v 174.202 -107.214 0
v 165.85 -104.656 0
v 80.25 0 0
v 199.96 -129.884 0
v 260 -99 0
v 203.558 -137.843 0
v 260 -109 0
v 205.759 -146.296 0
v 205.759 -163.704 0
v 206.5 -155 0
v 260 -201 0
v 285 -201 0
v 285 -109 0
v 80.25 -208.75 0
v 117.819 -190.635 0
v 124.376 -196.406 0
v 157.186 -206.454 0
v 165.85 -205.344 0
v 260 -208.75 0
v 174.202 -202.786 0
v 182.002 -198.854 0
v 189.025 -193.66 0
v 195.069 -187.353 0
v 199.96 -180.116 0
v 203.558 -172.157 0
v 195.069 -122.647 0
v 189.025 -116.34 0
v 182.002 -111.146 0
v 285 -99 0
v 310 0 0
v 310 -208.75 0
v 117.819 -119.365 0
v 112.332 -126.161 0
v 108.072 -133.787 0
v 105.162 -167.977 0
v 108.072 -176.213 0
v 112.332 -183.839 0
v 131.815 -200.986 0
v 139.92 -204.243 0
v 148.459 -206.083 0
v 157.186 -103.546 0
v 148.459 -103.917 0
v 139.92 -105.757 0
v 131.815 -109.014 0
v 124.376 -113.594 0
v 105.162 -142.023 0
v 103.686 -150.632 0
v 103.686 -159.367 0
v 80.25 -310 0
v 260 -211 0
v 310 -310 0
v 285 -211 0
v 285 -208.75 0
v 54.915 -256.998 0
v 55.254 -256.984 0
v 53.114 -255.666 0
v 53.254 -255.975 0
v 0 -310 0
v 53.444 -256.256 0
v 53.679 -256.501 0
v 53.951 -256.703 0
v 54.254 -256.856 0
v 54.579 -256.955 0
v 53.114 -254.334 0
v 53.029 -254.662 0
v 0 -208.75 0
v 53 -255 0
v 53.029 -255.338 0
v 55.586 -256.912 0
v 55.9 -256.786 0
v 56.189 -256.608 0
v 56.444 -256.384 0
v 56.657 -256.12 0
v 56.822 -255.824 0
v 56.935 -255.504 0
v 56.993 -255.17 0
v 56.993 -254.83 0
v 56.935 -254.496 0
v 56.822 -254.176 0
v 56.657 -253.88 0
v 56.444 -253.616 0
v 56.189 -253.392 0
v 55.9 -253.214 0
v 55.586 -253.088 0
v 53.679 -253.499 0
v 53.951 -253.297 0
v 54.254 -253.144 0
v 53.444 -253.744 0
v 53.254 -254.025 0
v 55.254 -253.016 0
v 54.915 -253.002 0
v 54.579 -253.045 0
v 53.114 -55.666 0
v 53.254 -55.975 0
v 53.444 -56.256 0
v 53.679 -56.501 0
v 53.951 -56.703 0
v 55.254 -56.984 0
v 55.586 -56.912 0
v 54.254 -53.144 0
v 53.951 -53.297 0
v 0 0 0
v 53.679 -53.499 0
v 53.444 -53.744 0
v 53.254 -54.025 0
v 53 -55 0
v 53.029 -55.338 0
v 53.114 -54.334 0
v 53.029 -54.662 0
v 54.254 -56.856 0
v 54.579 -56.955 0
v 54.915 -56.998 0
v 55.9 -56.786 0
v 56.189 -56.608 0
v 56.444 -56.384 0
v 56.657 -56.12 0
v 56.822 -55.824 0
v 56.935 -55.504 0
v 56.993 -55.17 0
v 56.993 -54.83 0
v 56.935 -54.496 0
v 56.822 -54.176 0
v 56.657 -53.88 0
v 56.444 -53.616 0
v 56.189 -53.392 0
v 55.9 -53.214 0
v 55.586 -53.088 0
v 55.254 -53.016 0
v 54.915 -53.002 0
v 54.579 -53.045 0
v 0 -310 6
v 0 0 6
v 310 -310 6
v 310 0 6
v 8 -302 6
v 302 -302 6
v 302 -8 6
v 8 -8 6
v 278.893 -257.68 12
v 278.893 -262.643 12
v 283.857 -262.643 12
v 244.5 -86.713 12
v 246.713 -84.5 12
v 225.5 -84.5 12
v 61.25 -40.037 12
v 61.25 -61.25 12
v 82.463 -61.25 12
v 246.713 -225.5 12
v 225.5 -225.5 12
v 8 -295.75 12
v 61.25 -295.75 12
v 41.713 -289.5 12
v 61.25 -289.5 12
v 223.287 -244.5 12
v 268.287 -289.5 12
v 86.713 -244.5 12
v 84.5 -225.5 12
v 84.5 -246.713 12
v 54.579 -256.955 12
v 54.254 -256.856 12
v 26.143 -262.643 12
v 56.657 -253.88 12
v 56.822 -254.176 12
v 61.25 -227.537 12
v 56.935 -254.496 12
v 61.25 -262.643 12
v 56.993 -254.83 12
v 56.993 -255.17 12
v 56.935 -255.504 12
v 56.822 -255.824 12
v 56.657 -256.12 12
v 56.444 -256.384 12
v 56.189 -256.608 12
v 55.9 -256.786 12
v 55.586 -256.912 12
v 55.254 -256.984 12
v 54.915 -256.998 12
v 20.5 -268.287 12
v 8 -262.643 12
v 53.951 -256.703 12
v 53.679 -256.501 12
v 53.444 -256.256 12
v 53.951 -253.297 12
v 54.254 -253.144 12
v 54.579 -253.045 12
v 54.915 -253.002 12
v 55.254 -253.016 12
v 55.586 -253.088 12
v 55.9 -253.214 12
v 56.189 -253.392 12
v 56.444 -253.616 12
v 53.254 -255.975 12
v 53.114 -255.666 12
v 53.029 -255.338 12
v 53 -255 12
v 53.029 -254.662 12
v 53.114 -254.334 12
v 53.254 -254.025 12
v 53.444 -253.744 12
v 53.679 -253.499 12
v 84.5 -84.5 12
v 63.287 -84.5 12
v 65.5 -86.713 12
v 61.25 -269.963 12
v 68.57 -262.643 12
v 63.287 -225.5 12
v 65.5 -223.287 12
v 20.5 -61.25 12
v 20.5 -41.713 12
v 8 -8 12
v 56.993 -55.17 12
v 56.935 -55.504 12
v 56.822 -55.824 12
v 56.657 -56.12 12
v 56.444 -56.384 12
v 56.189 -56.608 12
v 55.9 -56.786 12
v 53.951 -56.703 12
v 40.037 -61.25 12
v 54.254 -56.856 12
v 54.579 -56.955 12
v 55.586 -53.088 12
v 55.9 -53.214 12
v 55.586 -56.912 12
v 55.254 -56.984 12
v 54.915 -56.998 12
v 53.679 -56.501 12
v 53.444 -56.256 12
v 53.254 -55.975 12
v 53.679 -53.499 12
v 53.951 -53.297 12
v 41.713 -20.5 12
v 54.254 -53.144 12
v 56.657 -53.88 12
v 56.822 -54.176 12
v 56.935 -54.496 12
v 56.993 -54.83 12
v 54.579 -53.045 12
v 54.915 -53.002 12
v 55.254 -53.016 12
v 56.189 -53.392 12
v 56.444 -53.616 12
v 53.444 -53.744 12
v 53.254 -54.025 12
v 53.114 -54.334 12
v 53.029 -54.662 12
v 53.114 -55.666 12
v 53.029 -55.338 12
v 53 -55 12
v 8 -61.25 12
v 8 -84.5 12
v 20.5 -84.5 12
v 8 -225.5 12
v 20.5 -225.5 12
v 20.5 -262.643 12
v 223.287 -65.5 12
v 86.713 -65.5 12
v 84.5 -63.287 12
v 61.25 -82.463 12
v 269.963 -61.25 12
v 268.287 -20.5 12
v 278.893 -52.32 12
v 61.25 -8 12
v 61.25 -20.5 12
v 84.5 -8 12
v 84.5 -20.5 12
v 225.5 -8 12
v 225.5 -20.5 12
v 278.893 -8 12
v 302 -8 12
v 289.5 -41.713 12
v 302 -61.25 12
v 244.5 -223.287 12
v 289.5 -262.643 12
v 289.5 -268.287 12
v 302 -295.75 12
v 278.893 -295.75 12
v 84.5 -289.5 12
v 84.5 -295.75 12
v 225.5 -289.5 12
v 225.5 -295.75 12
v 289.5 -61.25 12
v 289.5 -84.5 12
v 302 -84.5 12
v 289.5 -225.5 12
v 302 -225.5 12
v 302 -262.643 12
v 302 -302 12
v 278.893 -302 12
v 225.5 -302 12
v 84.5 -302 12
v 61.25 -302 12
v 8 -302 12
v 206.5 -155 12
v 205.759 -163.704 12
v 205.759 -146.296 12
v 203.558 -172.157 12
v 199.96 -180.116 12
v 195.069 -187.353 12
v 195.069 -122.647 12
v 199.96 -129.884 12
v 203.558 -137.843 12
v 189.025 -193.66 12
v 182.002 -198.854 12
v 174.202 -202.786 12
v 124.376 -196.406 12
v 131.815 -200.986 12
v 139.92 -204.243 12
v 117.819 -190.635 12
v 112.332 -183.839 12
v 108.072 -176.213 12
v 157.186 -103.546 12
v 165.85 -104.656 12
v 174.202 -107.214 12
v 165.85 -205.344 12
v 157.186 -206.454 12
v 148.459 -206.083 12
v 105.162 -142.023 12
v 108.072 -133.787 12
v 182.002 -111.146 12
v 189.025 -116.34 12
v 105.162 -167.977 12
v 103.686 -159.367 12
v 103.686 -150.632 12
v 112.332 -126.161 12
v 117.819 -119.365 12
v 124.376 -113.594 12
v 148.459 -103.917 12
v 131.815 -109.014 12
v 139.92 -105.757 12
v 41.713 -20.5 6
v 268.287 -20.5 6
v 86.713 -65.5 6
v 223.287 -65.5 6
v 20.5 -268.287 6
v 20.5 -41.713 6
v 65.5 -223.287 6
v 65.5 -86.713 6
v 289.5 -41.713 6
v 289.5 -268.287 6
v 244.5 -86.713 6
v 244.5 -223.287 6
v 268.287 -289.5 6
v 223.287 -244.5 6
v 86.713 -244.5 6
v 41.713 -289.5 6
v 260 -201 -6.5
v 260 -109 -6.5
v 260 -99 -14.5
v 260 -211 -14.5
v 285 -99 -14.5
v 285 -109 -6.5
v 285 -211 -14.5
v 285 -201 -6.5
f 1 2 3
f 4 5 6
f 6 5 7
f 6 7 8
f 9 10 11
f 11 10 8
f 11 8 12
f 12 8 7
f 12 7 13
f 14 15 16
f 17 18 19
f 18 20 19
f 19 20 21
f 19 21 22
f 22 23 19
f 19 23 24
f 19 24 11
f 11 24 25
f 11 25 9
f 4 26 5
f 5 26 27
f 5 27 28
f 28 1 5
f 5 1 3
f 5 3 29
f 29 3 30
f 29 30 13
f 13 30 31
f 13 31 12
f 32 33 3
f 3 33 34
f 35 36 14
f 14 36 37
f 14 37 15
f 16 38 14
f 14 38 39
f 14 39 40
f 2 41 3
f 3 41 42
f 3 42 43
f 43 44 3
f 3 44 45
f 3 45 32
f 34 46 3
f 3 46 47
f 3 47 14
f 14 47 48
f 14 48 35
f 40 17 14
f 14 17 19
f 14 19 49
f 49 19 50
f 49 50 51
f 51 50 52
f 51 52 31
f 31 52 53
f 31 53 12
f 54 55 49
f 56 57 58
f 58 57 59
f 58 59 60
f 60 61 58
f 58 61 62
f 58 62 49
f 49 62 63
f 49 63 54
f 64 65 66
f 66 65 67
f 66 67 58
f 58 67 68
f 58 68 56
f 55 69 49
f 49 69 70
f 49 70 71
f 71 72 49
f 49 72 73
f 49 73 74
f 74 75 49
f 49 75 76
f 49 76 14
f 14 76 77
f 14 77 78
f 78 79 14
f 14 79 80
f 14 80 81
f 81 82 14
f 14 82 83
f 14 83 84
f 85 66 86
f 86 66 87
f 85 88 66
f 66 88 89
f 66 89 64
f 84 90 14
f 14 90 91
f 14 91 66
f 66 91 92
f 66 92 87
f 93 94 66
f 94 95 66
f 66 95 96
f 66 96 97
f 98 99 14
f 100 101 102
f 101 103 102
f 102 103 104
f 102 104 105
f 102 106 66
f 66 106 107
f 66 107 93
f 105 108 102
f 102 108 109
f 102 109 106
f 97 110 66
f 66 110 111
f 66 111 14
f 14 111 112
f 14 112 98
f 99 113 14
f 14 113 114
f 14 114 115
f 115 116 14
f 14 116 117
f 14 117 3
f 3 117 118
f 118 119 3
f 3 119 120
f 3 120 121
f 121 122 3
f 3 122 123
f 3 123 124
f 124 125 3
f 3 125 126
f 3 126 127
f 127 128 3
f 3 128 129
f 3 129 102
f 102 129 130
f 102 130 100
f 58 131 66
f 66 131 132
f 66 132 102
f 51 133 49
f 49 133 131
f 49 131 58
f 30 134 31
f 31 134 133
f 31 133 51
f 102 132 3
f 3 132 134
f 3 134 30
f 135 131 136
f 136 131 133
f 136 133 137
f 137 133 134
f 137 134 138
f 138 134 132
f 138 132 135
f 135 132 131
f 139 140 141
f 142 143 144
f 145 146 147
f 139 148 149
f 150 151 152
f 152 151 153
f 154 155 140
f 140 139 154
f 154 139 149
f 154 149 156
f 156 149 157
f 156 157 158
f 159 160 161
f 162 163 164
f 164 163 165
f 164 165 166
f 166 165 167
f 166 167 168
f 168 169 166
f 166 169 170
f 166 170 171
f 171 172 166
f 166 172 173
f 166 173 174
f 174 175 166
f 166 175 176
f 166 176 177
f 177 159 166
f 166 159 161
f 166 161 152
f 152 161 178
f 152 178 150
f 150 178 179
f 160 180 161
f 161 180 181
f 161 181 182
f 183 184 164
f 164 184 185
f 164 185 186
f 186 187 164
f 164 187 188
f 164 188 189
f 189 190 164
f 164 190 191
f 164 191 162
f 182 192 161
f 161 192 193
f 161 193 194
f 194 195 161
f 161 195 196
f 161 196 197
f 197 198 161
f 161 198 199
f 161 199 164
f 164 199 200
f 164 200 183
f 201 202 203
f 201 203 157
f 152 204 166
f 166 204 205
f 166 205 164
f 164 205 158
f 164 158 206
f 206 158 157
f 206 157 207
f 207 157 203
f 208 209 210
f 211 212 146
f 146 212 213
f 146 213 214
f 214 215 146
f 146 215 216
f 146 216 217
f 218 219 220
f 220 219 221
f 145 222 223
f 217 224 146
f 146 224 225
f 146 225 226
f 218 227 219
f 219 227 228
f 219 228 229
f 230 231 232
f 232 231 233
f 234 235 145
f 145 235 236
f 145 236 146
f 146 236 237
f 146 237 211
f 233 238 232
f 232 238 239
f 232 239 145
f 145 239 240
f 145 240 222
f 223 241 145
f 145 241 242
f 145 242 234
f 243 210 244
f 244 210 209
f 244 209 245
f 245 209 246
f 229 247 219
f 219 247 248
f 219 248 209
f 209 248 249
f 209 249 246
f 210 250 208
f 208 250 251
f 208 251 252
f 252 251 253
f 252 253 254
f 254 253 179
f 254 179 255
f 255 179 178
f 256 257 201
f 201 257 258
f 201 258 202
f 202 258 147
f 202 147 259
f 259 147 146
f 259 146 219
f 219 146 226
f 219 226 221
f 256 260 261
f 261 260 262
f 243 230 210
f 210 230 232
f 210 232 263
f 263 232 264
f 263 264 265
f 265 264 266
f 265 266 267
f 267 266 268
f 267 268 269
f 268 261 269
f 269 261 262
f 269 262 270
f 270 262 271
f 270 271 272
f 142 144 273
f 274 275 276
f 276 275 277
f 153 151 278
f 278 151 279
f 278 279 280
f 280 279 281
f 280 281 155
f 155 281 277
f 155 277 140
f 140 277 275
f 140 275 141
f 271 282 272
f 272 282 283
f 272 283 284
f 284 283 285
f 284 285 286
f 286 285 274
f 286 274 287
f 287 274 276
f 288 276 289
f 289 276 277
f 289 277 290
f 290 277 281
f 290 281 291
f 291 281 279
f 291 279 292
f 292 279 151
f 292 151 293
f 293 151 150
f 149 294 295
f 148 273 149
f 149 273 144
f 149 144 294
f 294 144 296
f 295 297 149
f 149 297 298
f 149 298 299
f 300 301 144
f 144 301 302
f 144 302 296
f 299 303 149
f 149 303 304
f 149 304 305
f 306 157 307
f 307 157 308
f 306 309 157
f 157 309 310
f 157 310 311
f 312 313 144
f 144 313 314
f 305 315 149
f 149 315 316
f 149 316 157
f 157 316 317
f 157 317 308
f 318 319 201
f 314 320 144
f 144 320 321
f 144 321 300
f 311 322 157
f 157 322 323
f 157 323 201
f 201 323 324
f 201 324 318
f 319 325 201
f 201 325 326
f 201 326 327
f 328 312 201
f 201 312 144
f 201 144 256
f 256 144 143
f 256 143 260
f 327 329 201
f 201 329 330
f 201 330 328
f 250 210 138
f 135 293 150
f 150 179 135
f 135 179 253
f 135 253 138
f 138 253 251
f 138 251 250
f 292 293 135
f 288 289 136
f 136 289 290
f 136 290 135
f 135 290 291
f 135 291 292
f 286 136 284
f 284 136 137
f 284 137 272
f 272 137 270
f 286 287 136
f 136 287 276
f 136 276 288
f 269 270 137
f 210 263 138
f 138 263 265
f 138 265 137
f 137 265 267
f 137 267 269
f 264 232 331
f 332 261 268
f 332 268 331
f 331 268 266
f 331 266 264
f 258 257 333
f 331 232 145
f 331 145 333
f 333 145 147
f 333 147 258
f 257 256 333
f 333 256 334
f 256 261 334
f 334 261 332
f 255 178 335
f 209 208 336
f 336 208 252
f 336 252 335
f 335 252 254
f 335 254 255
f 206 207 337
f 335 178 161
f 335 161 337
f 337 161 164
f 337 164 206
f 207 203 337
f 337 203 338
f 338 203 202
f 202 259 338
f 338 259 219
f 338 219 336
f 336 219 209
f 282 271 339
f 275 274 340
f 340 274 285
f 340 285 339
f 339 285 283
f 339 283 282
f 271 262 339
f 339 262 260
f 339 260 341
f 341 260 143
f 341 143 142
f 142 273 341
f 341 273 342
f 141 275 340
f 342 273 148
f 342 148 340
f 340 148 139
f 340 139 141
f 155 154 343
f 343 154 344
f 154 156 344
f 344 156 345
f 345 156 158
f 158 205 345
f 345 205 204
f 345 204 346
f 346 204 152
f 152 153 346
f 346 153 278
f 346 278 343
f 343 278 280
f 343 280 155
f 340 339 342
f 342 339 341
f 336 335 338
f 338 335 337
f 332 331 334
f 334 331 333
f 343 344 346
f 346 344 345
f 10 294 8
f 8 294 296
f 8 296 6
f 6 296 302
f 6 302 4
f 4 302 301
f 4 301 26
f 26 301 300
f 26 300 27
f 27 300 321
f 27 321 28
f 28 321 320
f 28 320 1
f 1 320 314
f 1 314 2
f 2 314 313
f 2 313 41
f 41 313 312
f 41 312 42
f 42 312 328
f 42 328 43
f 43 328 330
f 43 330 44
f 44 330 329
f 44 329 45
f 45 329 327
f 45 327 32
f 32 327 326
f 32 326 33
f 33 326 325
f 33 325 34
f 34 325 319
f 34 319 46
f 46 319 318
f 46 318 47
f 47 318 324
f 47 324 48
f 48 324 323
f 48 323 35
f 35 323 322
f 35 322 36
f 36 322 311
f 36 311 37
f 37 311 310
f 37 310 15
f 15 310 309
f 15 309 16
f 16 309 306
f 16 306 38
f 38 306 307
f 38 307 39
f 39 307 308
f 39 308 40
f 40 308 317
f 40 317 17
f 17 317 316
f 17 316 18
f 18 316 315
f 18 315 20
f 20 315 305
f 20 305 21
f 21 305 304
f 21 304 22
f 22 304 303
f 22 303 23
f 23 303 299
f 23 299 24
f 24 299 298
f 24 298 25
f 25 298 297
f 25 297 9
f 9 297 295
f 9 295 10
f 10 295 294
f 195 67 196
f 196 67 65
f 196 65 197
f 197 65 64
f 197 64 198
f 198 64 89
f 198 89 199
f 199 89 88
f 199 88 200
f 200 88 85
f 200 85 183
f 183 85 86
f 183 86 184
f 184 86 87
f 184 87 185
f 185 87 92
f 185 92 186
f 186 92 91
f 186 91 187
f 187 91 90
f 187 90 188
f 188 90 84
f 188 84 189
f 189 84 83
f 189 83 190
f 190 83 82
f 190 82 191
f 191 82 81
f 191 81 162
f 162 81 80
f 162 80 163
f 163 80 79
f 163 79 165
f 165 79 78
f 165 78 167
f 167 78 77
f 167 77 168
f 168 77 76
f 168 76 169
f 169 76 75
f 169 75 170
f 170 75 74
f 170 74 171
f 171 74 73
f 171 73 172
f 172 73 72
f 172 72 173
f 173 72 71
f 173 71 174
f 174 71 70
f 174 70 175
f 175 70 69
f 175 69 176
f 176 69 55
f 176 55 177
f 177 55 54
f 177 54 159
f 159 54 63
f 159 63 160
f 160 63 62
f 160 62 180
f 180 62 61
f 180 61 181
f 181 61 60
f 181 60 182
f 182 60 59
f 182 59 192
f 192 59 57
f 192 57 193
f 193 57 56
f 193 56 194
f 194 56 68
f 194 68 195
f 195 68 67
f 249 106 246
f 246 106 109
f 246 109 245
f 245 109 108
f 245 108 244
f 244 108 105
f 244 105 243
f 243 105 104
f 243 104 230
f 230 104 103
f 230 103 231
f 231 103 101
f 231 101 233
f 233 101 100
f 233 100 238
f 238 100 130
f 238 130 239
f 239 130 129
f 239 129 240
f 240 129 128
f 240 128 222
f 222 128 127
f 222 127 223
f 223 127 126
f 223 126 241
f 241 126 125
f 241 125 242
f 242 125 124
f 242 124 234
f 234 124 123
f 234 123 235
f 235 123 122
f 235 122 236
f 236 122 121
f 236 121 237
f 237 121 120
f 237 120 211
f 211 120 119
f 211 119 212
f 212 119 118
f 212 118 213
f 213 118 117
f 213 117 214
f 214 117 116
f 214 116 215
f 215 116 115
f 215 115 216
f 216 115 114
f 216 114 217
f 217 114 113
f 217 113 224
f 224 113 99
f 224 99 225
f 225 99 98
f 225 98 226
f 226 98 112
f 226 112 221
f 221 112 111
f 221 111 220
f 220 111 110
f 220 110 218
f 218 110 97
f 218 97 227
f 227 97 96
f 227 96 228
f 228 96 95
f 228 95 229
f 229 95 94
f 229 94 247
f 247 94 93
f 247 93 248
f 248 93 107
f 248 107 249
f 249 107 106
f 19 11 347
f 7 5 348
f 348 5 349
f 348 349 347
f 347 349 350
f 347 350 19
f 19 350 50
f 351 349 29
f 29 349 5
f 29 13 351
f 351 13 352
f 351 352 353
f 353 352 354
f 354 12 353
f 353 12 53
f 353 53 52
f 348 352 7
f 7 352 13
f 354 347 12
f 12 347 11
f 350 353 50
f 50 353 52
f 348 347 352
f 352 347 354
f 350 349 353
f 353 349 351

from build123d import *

# Parameters (mm, degrees)
SKETCH1_W           = 310
SKETCH1_H           = 310
BOSS_EXTRUDE1_DEPTH = 6
BOSS_EXTRUDE2_DEPTH = 6
SKETCH4_R           = 51.5
CUT_EXTRUDE1_DEPTH  = 439.570404838
SKETCH11_R          = 2
CUT_EXTRUDE5_DEPTH  = 439.570404838
SKETCH12_W          = 25
SKETCH12_H          = 10
BOSS_EXTRUDE3_DEPTH = 6.5
SKETCH13_W          = 25
SKETCH13_H          = 112
BOSS_EXTRUDE4_DEPTH = 8


with BuildPart() as part:
    # Sketch1 → Boss-Extrude1 (new body)
    with BuildSketch(Plane.XY):
        with Locations((155, -155)):
            Rectangle(SKETCH1_W, SKETCH1_H)
    extrude(amount=BOSS_EXTRUDE1_DEPTH)

    # Sketch3 → Boss-Extrude2 (add)
    with BuildSketch(Plane.XY.offset(6)):
        Polygon((302, -8), (302, -33), (302, -277), (302, -302), (277, -302), (33, -302), (8, -302), (8, -277), (8, -33), (8, -8), (33, -8), (277, -8), align=None)
        Polygon((268.286796564, -20.5), (223.286796564, -65.5), (86.713203436, -65.5), (41.713203436, -20.5), align=None, mode=Mode.SUBTRACT)
        Polygon((20.5, -41.713203436), (65.5, -86.713203436), (65.5, -223.286796564), (20.5, -268.286796564), align=None, mode=Mode.SUBTRACT)
        Polygon((41.713203436, -289.5), (86.713203436, -244.5), (223.286796564, -244.5), (268.286796564, -289.5), align=None, mode=Mode.SUBTRACT)
        Polygon((289.5, -41.713203436), (244.5, -86.713203436), (244.5, -223.286796564), (289.5, -268.286796564), align=None, mode=Mode.SUBTRACT)
    extrude(amount=BOSS_EXTRUDE2_DEPTH)

    # Sketch4 → Cut-Extrude1 (cut, through all)
    with BuildSketch(Plane.XY.offset(12)):
        with Locations((155, -155)):
            Circle(SKETCH4_R)
    extrude(amount=-CUT_EXTRUDE1_DEPTH, mode=Mode.SUBTRACT)

    # Sketch11 → Cut-Extrude5 (cut, through all)
    with BuildSketch(Plane(origin=(0, 0, 0), x_dir=(-1, 0, 0), z_dir=(0, 0, -1))):
        with Locations((-55, -55)):
            Circle(SKETCH11_R)
        with Locations((-55, -255)):
            Circle(SKETCH11_R)
    extrude(amount=-CUT_EXTRUDE5_DEPTH, mode=Mode.SUBTRACT)

    # Sketch12 → Boss-Extrude3 (add)
    with BuildSketch(Plane(origin=(0, 0, 0), x_dir=(-1, 0, 0), z_dir=(0, 0, -1))):
        with Locations((-272.5, -104)):
            Rectangle(SKETCH12_W, SKETCH12_H)
        with Locations((-272.5, -206)):
            Rectangle(SKETCH12_W, SKETCH12_H)
    extrude(amount=BOSS_EXTRUDE3_DEPTH)

    # Sketch13 → Boss-Extrude4 (add)
    with BuildSketch(Plane(origin=(0, 0, -6.5), x_dir=(-1, 0, 0), z_dir=(0, 0, -1))):
        with Locations((-272.5, -155)):
            Rectangle(SKETCH13_W, SKETCH13_H)
    extrude(amount=BOSS_EXTRUDE4_DEPTH)


solid = part.part
